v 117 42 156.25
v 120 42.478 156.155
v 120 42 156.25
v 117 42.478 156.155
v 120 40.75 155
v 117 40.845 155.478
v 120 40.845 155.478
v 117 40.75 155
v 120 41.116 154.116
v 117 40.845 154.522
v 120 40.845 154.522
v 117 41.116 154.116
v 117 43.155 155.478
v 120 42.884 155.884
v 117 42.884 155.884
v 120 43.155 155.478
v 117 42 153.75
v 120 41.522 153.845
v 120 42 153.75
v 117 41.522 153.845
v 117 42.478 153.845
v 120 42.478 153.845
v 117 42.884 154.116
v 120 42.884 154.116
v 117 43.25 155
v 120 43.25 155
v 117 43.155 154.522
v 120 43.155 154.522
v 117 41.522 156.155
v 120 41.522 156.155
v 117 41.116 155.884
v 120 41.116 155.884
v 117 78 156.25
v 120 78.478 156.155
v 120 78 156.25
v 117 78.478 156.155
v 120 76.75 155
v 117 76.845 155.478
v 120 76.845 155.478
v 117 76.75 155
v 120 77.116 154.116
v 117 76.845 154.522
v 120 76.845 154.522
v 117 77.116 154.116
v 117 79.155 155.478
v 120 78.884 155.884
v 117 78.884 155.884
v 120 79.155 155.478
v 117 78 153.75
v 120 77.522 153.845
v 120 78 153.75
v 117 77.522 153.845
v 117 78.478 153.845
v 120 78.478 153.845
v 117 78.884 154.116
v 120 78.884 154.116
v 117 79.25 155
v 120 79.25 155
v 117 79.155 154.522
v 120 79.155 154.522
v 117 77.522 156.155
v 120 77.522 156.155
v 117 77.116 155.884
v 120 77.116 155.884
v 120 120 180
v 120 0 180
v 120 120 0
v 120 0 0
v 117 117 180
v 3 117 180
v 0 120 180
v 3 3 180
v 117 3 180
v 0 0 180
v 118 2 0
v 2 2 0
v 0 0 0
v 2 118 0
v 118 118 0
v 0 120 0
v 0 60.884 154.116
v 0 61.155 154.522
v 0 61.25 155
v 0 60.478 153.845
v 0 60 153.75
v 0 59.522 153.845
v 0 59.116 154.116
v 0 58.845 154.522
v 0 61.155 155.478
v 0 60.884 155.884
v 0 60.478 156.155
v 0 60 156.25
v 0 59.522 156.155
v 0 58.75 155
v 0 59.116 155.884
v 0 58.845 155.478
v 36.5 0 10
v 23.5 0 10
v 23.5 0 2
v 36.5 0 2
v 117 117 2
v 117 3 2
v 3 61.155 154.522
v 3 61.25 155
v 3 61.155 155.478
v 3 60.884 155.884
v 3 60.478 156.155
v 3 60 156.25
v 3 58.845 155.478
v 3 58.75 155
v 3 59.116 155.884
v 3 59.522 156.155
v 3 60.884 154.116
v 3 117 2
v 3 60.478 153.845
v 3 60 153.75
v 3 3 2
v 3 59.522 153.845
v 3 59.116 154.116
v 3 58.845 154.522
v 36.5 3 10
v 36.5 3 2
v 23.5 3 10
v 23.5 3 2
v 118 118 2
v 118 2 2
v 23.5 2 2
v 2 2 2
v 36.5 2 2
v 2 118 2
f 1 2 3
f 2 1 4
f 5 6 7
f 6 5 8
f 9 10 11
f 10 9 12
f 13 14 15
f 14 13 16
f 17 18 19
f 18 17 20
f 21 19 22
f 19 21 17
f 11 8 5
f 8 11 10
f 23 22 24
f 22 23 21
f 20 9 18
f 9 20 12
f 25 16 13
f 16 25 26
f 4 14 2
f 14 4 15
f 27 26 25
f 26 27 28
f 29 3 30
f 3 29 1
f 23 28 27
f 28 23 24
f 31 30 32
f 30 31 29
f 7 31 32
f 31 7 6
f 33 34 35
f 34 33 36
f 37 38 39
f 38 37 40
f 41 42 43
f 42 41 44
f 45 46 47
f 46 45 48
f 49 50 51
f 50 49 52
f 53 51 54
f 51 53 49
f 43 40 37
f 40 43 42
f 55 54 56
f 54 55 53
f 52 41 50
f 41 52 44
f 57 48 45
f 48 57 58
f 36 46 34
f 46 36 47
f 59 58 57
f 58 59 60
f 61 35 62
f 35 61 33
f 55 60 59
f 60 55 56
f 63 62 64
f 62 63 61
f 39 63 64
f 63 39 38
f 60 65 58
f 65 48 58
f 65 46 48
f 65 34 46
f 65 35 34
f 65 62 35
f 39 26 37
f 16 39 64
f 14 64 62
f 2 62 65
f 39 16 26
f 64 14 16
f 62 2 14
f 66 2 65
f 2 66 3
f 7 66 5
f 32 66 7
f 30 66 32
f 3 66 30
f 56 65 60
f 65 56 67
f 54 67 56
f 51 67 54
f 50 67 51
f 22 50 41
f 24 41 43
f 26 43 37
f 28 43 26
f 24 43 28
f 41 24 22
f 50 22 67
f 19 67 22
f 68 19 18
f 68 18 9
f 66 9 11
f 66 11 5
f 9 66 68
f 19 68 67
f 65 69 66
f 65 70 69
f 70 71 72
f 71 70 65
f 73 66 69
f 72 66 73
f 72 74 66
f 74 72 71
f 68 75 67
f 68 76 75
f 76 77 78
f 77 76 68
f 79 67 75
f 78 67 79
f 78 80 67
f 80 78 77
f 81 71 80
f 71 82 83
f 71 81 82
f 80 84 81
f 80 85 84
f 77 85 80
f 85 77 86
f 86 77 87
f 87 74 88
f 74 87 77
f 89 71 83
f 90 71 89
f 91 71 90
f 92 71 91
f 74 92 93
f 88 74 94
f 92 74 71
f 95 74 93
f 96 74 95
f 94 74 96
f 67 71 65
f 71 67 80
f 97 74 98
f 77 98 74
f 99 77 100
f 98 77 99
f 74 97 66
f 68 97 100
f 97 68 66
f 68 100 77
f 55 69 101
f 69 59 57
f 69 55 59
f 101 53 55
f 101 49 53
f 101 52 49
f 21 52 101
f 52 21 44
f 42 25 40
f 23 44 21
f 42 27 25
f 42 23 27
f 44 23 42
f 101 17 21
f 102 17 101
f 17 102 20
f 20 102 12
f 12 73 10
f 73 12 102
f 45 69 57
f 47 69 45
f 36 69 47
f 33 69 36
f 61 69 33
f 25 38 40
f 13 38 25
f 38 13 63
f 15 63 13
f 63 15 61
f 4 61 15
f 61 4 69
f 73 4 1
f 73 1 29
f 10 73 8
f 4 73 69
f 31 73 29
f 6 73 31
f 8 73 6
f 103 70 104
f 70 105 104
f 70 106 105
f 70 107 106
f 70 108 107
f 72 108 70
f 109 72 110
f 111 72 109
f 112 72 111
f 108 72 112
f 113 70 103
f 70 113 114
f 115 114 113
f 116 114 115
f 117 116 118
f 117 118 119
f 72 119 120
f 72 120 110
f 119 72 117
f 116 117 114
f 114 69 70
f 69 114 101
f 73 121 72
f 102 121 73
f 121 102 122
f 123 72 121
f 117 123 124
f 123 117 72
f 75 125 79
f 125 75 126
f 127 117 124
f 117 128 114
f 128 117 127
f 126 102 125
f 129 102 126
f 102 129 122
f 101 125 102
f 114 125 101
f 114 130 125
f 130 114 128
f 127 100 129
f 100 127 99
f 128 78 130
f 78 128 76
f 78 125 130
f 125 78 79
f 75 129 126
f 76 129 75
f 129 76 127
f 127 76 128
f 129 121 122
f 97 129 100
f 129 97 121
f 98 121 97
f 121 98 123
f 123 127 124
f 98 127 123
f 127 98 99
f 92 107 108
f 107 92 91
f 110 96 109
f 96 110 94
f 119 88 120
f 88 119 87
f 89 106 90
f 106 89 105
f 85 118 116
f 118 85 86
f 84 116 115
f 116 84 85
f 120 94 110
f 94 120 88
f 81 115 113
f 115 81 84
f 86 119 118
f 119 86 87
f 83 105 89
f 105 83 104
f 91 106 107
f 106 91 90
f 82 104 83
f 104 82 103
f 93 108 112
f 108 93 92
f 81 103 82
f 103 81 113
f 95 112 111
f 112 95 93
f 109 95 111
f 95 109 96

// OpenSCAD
// Murs de la boîte - La Boîte à Coucou
//
// Tube carré monobloc (4 murs solidaires), ouvert en haut et en bas.
// Tenon 2x2mm en bas qui s'insère dans la rainure périphérique de base.scad.
//
// PoC : hauteur 20mm, pas de trou, pas de grille.
// Version finale : ajuster wall_h, ajouter trou câble Ø10mm côté Y-.
// ===================================================================

base_x   = 120;
base_y   = 120;
wall_t   = 3;    // épaisseur des murs
wall_h   = 180;  // hauteur finale 18cm

// Tenon correspondant à la rainure de base.scad
// groove_w=2, groove_d=2, collée au bord extérieur
tenon_w  = 2;
tenon_h  = 2;
cl       = 0;  // pas de jeu - filament bien calibré

// Dimensions réelles avec jeu
box_x    = base_x - 2*cl;
box_y    = base_y - 2*cl;

// Trou câble USB-C - mur Y- (côté Pi), centré en X
// Connecteur RPi5 USB-C : 7x12mm -> trou 8x13mm (1mm jeu)
usbc_w   = 13;   // largeur trou (axe X)
usbc_h   = 8;    // hauteur trou (axe Z)
usbc_z   = 2;    // distance du bas

// Trous haut-parleur - mur X+ (mur droit vu de la face USB-C), centrés en Y
spk_d    = 2.5;  // Ø M2.5
spk_z    = wall_h - 25;  // à 25mm du haut
spk_entraxe = 36;

// Trou micro - mur X- (mur gauche vu de la face USB-C), centré en Y, même hauteur que speaker
mic_d    = 2.5;  // Ø M2.5

// groove_w=2mm de chaque côté -> ouverture rainure = 120 - 2*2 = 116mm
// Le tenon doit faire < 116mm en extérieur -> 116 - 2*cl
groove_w = 2;
tenon_ext = base_x - 2*groove_w - 2*cl;  // extérieur du tenon = 115.6mm avec cl=0.20

// -------------------------------------------------------------------
// Murs : tube carré = cube plein - intérieur
// -------------------------------------------------------------------
difference() {
    // Tube plein - exactement 120x120mm
    cube([base_x, base_y, wall_h]);

    // Évidement intérieur
    translate([wall_t, wall_t, -0.1])
    cube([base_x - 2*wall_t, base_y - 2*wall_t, wall_h + 0.2]);

    // Évidement tenon : retire le bas pour que le tenon fasse tenon_ext en extérieur
    // offset de chaque côté = (base_x - tenon_ext) / 2 = groove_w + cl
    translate([groove_w + cl, groove_w + cl, -0.1])
    cube([tenon_ext, tenon_ext, tenon_h + 0.1]);

    // Trou câble USB-C - mur Y- (face avant), décalé 30mm à gauche du centre
    translate([base_x/2 - usbc_w/2 - 30, -0.1, usbc_z])
    cube([usbc_w, wall_t + 0.2, usbc_h]);

    // Trous fixation haut-parleur - mur X+, entraxe 36mm, centrés en Y
    for (dy = [-spk_entraxe/2, spk_entraxe/2])
    translate([base_x - wall_t - 0.1, base_y/2 + dy, spk_z])
    rotate([0, 90, 0])
    cylinder(d=spk_d, h=wall_t + 0.2, $fn=16);

    // Trou fixation micro - mur X-, centré en Y, même hauteur que speaker
    translate([-0.1, base_y/2, spk_z])
    rotate([0, 90, 0])
    cylinder(d=mic_d, h=wall_t + 0.2, $fn=16);
}
